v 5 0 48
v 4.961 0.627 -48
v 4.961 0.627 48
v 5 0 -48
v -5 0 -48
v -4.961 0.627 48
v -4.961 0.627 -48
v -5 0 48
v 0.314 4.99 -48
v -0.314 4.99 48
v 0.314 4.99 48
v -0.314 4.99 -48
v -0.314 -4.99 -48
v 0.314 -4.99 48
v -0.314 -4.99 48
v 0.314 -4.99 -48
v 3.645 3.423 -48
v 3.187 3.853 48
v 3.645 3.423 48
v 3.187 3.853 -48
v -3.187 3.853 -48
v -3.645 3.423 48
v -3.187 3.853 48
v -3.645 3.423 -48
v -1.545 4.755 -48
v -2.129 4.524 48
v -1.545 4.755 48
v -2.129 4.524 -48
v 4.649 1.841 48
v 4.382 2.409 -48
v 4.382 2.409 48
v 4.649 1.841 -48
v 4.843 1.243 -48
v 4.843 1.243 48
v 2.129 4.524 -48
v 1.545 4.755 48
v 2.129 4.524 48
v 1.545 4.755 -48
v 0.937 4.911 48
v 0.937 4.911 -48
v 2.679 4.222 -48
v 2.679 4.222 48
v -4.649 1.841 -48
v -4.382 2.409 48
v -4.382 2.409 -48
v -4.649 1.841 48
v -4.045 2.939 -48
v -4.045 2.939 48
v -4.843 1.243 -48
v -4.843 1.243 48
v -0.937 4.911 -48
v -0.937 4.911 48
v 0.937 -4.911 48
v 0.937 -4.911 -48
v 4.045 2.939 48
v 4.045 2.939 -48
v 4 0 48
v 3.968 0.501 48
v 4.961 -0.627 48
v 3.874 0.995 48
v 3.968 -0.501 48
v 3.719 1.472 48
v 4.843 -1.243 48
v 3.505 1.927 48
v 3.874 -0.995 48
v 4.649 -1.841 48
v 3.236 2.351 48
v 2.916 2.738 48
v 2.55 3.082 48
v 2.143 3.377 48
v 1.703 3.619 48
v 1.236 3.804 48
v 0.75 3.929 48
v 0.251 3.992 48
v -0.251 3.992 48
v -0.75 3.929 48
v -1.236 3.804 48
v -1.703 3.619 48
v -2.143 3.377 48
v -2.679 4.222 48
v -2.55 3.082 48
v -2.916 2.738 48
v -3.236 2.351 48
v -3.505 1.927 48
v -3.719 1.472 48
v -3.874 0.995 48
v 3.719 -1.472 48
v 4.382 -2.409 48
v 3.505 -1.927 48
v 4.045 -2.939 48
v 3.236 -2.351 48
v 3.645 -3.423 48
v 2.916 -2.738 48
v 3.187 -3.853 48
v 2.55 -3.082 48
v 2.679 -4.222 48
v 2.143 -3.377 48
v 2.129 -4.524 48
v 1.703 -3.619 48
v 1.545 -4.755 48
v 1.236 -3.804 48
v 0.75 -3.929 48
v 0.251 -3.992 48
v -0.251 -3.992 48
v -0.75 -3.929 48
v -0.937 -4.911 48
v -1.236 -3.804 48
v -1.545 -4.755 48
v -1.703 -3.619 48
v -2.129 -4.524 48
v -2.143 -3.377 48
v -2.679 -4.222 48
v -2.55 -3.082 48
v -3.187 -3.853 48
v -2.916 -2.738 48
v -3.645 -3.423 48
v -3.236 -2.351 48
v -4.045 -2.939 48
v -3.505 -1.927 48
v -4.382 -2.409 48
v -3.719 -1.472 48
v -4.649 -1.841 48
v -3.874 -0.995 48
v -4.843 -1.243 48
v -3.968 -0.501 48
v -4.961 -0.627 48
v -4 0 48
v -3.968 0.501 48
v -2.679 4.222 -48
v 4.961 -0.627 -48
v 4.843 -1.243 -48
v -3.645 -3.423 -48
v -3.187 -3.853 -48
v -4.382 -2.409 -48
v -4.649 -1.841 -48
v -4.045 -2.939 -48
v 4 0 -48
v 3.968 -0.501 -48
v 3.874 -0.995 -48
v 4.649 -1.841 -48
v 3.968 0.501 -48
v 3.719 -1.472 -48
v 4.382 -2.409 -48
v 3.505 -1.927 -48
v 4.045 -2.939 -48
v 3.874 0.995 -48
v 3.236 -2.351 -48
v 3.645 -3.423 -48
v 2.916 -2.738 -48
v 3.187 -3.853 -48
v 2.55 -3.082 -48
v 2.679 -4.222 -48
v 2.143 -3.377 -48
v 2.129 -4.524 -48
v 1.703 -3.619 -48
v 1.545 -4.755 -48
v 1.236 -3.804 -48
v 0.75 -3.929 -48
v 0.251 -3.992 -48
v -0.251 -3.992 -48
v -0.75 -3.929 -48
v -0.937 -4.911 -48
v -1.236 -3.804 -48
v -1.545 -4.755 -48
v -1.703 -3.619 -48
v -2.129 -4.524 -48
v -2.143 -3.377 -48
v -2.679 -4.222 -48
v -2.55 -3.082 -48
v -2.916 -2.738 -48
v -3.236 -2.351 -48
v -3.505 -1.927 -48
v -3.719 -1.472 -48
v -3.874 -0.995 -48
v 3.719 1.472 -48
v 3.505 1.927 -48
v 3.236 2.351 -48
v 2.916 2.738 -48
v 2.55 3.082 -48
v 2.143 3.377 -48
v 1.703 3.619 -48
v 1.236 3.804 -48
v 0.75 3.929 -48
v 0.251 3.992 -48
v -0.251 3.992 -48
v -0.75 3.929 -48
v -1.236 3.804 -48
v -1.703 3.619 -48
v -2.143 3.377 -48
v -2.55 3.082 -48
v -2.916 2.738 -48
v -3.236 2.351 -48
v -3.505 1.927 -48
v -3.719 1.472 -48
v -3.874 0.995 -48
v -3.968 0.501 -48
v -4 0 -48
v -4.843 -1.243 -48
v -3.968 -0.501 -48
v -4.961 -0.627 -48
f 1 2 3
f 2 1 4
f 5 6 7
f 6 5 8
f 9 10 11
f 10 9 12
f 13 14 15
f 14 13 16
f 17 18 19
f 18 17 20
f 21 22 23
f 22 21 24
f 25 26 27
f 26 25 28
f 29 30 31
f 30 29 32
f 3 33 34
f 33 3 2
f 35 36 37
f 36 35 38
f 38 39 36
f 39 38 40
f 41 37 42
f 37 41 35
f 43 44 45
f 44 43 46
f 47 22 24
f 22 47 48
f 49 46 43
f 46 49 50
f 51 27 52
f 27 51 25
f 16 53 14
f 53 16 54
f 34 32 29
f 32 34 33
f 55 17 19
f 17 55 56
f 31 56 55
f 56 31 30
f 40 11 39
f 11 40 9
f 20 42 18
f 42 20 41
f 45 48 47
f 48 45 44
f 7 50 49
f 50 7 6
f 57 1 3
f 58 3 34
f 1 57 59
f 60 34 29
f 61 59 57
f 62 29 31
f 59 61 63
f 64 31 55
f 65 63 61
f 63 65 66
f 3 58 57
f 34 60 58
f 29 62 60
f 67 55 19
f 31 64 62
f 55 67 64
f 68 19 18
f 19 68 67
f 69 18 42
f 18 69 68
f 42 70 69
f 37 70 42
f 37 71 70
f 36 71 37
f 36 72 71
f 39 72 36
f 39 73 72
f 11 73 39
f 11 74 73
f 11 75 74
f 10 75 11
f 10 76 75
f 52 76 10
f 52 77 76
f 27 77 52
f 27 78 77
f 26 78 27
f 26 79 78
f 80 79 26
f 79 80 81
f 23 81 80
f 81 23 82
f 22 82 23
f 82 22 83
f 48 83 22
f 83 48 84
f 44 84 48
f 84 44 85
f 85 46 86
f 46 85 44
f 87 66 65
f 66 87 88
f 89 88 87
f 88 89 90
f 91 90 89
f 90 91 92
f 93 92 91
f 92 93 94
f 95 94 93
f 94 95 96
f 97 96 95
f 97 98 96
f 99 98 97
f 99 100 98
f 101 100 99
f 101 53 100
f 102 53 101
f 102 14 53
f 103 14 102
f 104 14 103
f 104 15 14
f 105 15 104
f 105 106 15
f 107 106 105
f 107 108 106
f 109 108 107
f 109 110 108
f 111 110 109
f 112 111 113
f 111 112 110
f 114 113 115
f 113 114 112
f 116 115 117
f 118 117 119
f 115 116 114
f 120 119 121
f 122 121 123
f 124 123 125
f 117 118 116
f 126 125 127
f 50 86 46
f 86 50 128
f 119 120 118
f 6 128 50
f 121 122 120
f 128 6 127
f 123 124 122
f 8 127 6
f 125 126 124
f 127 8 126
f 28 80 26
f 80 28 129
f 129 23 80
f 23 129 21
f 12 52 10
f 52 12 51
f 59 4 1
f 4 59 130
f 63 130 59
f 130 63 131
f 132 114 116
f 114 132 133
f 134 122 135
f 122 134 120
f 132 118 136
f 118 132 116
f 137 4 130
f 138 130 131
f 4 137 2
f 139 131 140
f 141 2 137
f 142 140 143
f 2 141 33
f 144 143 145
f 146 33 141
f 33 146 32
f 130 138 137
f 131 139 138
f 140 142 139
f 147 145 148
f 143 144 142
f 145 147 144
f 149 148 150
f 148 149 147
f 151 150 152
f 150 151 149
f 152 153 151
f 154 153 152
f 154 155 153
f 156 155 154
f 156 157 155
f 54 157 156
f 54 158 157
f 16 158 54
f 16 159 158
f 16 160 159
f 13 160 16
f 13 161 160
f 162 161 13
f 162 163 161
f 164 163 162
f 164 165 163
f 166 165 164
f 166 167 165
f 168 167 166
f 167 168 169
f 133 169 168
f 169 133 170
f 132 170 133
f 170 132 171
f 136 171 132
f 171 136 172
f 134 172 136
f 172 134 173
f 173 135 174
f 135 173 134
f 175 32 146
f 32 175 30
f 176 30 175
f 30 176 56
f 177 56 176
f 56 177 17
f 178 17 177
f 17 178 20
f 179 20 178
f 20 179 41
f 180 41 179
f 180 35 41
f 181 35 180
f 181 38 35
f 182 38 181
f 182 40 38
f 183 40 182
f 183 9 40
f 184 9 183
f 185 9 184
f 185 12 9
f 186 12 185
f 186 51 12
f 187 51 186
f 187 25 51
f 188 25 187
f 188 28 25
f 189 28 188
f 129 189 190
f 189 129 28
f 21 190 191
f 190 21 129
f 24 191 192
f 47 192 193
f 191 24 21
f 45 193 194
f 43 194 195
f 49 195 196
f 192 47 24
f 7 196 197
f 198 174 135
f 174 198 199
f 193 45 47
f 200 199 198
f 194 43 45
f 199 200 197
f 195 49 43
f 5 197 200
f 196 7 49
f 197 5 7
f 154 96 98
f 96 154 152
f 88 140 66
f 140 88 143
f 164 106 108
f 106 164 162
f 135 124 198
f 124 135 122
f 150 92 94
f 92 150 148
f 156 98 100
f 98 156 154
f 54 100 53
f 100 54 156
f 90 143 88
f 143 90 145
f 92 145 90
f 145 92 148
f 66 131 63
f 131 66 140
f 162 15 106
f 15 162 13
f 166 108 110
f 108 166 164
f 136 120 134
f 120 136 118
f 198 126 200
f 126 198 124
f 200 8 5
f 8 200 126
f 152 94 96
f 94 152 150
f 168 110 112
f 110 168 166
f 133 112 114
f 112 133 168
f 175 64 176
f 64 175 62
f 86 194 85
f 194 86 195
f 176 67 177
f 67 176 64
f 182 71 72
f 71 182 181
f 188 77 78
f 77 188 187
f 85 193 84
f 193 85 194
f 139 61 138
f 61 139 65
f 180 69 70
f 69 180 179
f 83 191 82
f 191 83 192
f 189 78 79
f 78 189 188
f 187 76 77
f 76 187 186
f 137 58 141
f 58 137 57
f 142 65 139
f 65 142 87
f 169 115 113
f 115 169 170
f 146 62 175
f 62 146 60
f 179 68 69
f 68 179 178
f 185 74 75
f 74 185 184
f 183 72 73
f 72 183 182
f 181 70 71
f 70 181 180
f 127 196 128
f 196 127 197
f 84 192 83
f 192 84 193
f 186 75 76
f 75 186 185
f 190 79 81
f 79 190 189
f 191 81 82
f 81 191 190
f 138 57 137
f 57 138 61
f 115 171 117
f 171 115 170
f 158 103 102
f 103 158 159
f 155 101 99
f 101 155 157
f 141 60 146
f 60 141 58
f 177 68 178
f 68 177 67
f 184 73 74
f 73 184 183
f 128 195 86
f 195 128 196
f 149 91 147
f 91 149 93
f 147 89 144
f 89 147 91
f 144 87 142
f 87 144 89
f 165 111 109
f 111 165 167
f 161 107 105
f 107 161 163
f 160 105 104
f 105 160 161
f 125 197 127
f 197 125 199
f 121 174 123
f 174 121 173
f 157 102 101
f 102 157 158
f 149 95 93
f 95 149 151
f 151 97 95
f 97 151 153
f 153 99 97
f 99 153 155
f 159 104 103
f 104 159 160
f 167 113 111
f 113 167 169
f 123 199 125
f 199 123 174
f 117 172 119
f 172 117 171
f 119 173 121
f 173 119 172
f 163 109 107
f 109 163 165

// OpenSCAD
$fn = 50;


difference() {
	union() {
		translate(v = [0, 0, -48.0000000000]) {
			cylinder(h = 96, r = 5.0000000000);
		}
	}
	union() {
		translate(v = [0, 0, -100.0000000000]) {
			cylinder(h = 200, r = 4);
		}
	}
}
